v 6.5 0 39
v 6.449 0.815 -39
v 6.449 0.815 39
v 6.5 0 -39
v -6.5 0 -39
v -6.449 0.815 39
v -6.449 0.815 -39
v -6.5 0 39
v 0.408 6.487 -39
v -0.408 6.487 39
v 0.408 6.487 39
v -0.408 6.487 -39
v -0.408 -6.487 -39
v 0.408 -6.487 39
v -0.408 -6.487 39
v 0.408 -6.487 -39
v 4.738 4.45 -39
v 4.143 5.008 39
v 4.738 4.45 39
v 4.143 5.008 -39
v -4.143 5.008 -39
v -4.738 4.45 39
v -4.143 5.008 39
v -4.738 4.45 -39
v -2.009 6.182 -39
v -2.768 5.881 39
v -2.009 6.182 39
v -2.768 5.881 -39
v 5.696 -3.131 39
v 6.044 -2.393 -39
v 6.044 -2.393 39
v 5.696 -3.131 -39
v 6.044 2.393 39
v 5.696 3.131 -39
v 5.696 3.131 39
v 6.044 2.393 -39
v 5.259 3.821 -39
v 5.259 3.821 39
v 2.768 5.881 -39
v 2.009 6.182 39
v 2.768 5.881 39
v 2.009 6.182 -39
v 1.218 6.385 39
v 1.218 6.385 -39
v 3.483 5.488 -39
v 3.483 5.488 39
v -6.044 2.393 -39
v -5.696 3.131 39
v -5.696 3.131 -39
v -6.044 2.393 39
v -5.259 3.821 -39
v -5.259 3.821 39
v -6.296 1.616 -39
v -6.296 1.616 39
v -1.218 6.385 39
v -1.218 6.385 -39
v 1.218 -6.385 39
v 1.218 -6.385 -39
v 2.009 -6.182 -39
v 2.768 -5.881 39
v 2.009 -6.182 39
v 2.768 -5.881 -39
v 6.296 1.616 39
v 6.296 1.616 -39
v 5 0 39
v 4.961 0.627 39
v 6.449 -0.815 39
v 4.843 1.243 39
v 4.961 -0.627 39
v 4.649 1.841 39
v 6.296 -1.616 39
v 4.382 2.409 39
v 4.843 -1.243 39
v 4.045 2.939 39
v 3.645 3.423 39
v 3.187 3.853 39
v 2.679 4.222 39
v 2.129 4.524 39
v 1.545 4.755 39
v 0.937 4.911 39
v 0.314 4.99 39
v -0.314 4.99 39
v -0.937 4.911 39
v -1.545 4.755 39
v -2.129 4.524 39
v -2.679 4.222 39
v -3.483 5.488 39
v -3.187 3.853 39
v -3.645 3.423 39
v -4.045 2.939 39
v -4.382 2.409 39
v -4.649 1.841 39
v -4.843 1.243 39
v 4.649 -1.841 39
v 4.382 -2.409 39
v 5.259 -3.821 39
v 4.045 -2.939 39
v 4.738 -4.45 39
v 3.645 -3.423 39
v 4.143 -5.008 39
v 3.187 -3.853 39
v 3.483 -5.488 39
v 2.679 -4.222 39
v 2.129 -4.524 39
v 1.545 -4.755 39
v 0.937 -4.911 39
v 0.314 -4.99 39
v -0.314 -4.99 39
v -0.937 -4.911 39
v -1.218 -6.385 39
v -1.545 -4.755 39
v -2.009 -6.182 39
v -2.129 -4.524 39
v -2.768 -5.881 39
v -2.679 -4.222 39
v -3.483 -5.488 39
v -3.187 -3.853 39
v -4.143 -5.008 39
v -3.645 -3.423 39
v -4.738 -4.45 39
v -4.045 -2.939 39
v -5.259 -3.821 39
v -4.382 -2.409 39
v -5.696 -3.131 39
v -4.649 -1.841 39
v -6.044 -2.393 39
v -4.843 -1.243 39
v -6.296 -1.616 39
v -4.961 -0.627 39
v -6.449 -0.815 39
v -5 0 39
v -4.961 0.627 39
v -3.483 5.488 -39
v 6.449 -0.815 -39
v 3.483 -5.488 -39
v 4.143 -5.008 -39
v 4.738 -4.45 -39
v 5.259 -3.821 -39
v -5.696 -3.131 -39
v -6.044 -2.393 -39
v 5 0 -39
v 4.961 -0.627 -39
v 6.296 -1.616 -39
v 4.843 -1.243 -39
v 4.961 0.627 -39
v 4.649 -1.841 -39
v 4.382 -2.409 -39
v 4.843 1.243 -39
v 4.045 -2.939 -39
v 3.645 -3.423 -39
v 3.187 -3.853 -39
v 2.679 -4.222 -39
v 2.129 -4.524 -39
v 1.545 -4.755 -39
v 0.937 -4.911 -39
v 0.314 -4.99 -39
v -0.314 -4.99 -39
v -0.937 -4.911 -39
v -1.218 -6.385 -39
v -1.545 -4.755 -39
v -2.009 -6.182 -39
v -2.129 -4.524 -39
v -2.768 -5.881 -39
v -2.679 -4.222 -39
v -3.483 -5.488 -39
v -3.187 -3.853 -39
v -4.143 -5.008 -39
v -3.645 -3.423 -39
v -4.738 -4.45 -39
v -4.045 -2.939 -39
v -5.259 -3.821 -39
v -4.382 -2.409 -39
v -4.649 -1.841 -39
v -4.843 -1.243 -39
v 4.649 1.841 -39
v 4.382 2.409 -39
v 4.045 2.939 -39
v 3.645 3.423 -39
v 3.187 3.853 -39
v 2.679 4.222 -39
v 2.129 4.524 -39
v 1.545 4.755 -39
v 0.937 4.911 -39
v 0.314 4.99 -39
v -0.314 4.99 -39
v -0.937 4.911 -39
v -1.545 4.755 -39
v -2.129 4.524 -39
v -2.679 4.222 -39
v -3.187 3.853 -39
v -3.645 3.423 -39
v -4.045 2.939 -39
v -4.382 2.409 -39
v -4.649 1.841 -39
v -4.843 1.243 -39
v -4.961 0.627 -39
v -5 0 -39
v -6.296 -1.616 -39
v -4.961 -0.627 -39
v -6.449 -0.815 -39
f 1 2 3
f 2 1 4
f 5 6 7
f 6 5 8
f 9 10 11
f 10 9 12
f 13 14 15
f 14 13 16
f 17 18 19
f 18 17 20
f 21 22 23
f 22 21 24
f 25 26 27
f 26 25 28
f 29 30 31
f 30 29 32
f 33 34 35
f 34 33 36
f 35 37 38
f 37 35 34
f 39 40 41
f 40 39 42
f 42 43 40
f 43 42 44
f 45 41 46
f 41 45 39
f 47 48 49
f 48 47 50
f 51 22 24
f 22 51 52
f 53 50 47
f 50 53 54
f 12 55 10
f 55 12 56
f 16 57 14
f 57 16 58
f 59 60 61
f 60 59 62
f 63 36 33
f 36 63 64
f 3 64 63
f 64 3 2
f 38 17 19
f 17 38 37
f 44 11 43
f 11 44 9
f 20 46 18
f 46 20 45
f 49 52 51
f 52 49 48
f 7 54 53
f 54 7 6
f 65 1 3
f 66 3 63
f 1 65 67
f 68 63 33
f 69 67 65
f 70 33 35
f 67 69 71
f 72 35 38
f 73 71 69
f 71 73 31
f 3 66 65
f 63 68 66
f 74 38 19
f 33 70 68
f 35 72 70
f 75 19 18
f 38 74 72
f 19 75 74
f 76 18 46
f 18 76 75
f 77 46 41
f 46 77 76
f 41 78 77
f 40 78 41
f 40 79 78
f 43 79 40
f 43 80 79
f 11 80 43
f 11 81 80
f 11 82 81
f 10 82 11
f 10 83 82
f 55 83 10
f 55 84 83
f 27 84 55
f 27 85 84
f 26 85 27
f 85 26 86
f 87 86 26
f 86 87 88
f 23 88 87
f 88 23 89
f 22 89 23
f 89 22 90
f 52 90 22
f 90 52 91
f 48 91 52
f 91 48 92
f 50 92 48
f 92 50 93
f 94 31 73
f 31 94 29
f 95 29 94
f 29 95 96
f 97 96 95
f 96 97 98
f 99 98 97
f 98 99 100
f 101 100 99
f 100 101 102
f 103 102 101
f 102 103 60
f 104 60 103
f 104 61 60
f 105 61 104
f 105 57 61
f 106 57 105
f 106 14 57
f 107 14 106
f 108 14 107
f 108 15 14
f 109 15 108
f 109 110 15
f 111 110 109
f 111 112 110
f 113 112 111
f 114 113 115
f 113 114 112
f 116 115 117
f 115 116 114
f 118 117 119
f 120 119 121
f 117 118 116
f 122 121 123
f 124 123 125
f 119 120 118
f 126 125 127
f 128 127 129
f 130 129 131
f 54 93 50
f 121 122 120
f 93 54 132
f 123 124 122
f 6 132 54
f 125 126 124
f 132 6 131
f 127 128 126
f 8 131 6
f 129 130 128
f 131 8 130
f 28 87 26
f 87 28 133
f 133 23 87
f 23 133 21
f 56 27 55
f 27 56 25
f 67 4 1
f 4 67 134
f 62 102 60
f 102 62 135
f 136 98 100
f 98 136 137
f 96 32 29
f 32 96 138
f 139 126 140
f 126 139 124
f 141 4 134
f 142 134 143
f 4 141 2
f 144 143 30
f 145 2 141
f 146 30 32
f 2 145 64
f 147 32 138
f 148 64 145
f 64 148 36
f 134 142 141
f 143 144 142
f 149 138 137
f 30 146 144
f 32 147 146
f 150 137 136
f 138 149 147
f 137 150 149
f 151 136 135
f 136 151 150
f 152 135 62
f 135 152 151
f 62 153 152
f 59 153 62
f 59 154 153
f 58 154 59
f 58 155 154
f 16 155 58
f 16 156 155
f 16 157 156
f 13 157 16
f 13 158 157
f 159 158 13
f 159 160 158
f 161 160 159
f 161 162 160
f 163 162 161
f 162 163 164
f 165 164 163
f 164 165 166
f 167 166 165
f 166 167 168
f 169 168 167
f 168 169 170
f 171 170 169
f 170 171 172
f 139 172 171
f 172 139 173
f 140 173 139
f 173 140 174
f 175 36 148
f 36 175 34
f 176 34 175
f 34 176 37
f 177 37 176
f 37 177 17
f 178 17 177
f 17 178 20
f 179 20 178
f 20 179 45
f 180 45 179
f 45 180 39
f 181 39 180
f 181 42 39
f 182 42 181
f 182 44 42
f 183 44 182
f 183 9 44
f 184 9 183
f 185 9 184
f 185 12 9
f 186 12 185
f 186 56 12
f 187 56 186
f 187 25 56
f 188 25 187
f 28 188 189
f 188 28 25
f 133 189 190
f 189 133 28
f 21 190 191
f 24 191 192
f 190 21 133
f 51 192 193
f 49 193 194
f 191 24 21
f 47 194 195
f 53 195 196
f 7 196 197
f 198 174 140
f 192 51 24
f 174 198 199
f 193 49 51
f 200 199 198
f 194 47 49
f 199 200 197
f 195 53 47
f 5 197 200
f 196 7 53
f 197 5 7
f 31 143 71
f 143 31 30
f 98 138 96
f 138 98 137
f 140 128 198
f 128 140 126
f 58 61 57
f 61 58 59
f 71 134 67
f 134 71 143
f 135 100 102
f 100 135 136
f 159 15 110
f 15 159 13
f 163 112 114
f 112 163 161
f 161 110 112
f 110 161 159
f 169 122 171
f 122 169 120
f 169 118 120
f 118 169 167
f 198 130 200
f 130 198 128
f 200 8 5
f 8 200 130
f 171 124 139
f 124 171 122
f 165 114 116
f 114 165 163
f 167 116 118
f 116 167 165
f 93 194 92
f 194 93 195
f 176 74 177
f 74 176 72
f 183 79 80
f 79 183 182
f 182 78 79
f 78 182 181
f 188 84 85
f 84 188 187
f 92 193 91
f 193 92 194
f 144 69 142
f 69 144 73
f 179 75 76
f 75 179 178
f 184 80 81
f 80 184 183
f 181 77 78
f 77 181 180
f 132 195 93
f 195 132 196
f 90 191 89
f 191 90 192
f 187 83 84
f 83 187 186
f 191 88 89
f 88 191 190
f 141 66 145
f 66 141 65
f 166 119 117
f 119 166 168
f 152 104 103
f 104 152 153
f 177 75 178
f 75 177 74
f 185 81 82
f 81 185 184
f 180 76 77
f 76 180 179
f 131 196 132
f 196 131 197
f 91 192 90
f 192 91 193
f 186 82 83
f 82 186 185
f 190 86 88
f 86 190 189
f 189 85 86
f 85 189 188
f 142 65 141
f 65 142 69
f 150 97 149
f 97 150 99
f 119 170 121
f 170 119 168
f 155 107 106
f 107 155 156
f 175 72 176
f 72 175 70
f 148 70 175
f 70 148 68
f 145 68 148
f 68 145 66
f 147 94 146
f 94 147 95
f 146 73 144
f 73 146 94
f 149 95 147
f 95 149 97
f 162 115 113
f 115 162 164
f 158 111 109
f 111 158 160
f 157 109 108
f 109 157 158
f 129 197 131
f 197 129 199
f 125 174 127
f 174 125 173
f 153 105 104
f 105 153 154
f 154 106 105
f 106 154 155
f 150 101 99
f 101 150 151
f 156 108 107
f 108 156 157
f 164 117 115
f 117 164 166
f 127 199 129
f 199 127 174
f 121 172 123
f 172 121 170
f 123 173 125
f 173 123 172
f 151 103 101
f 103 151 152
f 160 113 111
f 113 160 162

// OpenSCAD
$fn = 50;


difference() {
	union() {
		translate(v = [0, 0, -39.0000000000]) {
			cylinder(h = 78, r = 6.5000000000);
		}
	}
	union() {
		translate(v = [0, 0, -100.0000000000]) {
			cylinder(h = 200, r = 5);
		}
	}
}
